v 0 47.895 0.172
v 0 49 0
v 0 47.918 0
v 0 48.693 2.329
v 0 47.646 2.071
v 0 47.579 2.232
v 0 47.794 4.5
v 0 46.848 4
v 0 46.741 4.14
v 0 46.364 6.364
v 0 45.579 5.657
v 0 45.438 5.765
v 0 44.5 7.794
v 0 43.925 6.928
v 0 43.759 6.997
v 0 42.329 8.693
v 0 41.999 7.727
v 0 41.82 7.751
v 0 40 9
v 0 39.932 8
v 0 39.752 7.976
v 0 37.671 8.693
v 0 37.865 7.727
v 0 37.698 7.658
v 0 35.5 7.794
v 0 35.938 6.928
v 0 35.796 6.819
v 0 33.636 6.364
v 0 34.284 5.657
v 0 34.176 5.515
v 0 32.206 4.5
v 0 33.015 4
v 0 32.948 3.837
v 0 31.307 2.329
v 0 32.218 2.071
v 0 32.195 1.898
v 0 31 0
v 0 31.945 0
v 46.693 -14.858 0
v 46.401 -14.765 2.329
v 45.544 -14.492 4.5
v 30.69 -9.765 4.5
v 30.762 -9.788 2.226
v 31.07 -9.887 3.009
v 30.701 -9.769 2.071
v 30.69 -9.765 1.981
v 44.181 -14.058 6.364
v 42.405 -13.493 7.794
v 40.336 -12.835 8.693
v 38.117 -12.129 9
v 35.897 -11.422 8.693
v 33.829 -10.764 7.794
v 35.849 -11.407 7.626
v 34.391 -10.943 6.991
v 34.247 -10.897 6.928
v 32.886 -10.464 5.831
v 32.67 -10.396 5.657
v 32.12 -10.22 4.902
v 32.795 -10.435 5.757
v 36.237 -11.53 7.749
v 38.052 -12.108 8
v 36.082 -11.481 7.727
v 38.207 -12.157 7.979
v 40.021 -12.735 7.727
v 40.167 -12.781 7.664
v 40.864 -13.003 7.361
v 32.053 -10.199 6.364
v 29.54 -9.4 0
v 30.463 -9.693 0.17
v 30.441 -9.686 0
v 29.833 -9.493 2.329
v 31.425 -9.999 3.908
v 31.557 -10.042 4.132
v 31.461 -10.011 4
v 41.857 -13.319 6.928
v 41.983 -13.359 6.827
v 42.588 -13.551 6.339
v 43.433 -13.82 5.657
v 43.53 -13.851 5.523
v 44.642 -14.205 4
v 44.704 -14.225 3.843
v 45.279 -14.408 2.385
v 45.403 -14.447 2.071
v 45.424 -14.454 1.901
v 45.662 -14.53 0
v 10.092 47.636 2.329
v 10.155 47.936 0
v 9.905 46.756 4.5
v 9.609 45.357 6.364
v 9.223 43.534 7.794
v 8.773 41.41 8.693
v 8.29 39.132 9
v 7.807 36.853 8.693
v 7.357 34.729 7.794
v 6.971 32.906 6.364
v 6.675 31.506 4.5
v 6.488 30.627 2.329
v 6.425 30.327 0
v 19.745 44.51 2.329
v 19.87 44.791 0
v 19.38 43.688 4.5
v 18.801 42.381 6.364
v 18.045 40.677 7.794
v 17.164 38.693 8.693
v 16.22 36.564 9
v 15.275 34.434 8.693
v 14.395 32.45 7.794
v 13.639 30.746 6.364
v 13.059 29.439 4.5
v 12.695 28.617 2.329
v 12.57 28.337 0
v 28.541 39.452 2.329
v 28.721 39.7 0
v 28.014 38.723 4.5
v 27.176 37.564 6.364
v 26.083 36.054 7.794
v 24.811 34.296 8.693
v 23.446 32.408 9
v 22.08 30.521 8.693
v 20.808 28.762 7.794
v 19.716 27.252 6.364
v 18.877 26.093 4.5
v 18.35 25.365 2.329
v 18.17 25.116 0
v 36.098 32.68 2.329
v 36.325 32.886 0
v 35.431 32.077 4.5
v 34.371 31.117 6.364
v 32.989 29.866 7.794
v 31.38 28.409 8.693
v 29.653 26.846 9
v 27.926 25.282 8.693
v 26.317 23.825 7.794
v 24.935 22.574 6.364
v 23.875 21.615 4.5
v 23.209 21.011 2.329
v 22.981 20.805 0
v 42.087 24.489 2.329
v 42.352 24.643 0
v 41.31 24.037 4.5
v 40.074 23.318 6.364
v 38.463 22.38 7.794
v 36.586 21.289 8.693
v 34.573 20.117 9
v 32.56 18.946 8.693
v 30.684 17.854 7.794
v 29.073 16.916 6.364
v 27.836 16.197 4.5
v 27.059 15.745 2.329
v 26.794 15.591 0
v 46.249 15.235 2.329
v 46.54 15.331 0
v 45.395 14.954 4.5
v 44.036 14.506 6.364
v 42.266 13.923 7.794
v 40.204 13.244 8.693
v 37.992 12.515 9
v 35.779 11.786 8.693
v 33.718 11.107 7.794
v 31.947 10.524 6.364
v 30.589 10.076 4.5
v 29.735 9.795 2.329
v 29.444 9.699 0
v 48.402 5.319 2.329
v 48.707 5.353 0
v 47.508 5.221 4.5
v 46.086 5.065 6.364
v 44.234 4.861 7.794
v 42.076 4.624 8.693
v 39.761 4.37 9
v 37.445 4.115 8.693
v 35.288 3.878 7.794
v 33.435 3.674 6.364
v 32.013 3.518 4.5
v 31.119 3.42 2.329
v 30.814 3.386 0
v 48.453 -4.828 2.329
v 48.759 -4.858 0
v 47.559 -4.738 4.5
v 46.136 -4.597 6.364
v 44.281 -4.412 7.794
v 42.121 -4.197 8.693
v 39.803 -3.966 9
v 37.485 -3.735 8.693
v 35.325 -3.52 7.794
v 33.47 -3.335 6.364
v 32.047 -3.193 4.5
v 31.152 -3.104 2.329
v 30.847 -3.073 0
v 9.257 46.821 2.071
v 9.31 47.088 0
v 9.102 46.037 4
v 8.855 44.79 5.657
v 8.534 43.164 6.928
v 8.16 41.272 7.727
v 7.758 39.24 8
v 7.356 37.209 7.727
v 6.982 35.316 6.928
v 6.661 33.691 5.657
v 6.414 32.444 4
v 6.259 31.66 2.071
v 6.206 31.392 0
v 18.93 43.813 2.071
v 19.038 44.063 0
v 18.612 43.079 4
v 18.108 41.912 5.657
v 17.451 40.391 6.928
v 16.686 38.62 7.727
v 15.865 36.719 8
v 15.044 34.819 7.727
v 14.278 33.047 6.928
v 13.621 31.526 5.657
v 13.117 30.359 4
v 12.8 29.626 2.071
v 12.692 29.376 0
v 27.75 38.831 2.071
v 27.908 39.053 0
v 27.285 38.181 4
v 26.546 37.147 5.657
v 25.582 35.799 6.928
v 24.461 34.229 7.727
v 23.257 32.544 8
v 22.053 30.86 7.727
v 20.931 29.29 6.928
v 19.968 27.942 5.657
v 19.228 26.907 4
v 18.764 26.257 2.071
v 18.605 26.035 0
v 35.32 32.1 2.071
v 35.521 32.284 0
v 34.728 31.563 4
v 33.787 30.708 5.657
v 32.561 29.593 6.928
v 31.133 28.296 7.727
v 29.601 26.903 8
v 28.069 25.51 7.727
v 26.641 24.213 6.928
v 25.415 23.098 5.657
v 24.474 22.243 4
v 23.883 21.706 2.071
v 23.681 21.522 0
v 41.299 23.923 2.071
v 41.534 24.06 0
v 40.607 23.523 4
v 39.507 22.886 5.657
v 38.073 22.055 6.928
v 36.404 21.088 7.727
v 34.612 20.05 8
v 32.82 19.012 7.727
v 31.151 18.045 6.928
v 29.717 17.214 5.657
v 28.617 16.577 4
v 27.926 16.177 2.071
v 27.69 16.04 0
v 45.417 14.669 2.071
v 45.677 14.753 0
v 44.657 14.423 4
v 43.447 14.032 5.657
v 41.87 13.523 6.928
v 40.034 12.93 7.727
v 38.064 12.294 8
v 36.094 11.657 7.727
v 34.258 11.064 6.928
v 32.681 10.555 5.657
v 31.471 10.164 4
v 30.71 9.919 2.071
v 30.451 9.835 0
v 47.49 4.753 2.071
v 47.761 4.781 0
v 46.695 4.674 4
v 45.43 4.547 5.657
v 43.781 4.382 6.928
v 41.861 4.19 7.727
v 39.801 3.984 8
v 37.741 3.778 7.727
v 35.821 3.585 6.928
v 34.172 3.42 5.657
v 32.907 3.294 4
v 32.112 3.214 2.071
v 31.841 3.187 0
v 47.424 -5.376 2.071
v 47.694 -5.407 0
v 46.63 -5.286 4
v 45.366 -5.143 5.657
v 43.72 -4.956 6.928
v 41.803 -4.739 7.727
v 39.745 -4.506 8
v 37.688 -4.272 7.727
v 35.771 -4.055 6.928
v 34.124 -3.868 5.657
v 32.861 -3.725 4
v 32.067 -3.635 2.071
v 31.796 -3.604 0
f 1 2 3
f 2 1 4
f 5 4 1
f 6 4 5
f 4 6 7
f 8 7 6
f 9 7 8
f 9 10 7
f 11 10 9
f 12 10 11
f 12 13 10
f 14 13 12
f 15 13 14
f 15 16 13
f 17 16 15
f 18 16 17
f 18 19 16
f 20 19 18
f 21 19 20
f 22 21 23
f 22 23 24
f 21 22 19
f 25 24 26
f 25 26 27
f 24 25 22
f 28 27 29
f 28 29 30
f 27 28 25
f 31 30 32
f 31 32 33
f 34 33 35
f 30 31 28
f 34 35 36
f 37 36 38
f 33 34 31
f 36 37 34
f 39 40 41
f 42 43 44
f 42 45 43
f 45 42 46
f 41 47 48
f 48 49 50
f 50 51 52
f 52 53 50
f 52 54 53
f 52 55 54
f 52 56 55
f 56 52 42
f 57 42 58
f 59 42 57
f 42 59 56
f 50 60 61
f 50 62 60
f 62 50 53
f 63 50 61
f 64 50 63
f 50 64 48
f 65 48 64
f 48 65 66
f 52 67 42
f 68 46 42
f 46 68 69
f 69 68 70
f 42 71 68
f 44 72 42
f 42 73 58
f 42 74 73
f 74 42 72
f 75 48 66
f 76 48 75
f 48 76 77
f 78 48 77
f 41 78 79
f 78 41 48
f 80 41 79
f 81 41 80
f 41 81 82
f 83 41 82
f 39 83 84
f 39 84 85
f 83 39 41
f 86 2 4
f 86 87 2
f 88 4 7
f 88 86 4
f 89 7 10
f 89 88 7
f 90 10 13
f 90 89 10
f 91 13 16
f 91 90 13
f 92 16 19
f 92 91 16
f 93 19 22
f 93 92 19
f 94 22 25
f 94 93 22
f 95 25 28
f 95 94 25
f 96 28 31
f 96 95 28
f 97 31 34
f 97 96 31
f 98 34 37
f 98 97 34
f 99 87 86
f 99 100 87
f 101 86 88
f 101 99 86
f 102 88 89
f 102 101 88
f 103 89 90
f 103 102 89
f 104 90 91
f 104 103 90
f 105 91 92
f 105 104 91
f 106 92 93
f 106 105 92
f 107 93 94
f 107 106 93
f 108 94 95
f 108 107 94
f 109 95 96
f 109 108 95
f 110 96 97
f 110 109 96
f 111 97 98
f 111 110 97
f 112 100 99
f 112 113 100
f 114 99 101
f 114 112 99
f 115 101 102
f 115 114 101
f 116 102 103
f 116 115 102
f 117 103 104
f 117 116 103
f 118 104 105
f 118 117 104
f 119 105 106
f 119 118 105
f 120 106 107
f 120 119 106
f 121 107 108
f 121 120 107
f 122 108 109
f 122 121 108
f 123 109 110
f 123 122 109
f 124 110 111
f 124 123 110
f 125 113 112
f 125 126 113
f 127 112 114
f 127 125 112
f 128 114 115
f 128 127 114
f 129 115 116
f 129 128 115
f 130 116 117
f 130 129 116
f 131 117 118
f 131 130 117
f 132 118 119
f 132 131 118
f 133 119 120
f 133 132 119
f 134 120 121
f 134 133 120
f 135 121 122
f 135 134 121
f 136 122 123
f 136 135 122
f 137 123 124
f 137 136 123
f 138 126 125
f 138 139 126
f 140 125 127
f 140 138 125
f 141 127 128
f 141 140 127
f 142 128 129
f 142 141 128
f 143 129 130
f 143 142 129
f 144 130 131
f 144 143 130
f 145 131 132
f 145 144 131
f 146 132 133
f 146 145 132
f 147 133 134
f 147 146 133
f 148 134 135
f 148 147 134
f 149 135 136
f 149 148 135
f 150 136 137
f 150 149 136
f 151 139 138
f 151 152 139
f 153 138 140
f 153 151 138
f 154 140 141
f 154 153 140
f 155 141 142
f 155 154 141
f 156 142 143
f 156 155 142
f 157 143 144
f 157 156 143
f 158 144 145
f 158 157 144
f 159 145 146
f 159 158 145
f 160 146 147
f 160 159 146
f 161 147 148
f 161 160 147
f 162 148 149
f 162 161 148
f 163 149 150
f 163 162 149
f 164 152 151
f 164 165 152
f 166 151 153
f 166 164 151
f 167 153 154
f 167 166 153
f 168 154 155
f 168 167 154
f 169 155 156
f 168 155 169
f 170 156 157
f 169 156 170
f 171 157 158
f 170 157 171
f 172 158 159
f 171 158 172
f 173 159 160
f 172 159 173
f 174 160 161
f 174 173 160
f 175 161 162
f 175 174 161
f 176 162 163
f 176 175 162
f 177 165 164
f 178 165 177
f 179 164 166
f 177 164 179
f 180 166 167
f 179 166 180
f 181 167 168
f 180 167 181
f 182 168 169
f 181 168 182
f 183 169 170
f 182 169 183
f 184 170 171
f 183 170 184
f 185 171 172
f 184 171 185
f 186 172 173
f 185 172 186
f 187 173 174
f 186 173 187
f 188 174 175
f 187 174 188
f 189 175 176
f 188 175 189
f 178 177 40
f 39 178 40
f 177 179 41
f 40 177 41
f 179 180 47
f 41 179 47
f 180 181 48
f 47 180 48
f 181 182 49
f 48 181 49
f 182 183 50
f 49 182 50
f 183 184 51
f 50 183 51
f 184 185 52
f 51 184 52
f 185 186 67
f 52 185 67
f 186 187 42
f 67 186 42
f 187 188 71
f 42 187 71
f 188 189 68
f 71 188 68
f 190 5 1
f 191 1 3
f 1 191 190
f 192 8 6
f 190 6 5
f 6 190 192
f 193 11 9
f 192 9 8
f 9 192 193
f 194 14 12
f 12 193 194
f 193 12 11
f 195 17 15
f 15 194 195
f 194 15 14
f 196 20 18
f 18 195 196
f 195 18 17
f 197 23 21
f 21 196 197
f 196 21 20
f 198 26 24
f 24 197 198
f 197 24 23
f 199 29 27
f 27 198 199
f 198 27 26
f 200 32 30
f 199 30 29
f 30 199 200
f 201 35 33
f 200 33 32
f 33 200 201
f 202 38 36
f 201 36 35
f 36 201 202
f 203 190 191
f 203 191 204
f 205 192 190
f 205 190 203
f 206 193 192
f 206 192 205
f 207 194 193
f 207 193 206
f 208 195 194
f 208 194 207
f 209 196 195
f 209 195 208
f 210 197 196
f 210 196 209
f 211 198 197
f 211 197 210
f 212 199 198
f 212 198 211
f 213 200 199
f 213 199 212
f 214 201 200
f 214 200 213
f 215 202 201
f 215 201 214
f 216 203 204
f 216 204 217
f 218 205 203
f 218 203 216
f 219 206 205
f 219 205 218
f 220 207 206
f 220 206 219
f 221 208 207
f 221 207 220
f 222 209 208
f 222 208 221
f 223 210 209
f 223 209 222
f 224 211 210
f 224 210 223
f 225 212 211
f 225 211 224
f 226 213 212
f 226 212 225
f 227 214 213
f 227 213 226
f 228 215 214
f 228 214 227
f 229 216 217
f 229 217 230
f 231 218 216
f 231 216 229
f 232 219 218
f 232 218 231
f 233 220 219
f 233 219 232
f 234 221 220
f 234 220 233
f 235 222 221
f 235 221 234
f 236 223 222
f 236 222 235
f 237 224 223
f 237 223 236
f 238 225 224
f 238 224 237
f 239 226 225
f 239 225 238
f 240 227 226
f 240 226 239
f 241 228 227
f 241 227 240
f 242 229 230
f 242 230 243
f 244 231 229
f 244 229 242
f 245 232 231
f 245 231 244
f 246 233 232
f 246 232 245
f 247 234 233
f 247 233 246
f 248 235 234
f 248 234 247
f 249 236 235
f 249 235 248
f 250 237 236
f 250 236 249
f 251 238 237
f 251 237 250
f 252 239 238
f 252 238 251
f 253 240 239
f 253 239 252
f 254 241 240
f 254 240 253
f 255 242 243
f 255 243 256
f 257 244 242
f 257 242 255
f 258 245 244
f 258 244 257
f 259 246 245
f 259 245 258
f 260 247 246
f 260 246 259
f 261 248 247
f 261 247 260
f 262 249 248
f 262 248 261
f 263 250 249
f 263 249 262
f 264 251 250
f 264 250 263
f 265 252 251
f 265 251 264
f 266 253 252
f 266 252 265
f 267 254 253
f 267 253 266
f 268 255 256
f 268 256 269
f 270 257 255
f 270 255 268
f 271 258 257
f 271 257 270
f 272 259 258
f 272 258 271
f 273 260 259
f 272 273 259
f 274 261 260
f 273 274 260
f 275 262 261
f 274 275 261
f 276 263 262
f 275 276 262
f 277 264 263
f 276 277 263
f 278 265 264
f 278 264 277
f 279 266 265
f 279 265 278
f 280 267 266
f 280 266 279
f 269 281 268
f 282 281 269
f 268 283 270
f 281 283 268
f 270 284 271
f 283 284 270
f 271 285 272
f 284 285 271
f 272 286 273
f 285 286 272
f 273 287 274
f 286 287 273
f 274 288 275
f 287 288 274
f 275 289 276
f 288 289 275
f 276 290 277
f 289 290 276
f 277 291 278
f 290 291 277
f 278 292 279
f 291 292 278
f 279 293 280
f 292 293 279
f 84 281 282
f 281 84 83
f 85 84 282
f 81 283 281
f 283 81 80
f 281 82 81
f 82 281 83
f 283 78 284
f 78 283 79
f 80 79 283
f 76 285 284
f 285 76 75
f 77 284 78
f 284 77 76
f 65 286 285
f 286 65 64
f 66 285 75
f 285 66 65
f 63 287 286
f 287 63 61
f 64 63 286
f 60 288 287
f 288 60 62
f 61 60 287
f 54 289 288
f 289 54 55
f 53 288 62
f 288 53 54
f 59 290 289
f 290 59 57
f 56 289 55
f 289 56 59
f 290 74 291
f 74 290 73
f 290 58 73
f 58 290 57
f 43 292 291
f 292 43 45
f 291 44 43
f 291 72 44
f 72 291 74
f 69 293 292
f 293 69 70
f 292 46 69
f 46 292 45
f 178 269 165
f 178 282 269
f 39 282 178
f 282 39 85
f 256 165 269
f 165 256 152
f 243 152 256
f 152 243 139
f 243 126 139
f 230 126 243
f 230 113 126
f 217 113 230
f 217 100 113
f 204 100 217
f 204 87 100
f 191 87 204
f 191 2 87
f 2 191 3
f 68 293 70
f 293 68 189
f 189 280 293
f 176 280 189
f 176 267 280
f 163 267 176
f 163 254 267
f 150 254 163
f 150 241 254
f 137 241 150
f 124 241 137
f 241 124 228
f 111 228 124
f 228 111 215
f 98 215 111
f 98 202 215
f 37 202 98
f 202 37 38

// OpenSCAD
// file: ../build_environments.scad
// build_environments.scad: modules to build level sections
//

module pool(diameter=10.0, wall_height=2.0, step_width=3.0, connections=[])
{
    difference() {
        union() {
        difference() {
            cylinder(h=0.5,r1=diameter+step_width,r2=diameter+step_width,$fn=48);
            translate([0,0,-0.1])
                cylinder(h=0.7,r1=diameter,r2=diameter,$fn=48);
        }
        difference() {
            cylinder(h=wall_height,r1=diameter+step_width+1.0,r2=diameter+step_width+1.0,$fn=48);
            translate([0,0,-0.1])
                cylinder(h=wall_height+0.2,r1=diameter+step_width,r2=diameter+step_width,$fn=48);
        }
        }
    
        for (c = connections)
        {
            rotate([0,90,0]) {
                angle = atan2(c[1],c[0]);
                rotate([-angle,0,0]) {
                    cylinder(h=diameter+5.0,r1=c[2],r2=c[2],$fn=48);
                }
            }
        }
    }
}

module straight(length=10.0, width=2.0, dy1=0.0, dy2=0.0, dz=0.0)
{
    dims = [0, 0, 0, 0, 0, (dz/length)];
    matrix = [
        [ 1, dims[0], dims[1], 0 ],
        [ dims[2], 1, dims[4], 0 ],
        [ dims[5], dims[3], 1, 0 ],
        [ 0, 0, 0, 1 ]
    ];
    multmatrix(matrix)
    difference() {
        translate([dy1,0,0])
        union() {
            rotate([0,90,0]) {
                difference() {
                    cylinder(h=(length-dy1-dy2),r1=width+1.0,r2=width+1.0,$fn=24);
                    translate([0,0,-0.1])
                        cylinder(h=(length-dy1-dy2+0.2),r1=width,r2=width,$fn=24);
                }
                difference() {
                    cylinder(h=1.0,r1=width+2.0,r2=width+2.0,$fn=24);
                    translate([0,0,-0.1])
                        cylinder(h=1.2,r1=width,r2=width,$fn=24);
                }
                translate([0,0,(length-dy1-dy2)-1.0]) {
                    difference() {
                        cylinder(h=1.0,r1=width+2.0,r2=width+2.0,$fn=24);
                        translate([0,0,-0.1])
                            cylinder(h=1.2,r1=width,r2=width,$fn=24);
                    }
                }
            }
        }
        translate([0,0,-(2*width+4.0)/2])
            cube([3*length,3*length,2*width+4.0],center=true);
    }
}

module curve(p0=[0,0], center=[0,0], dir=1, angle=0.0, width=2.0)
{
    radius = sqrt((p0[0]-center[0])*(p0[0]-center[0]) + (p0[1]-center[1])*(p0[1]-center[1]));
    if (dir == 0) {
        difference() {
            rotate([0,0,-90])
            difference() {
                rotate_extrude(angle = angle, convexity = 10, $fn=32)
                    translate([radius, 0, 0])
                        circle(r = width+1.0,$fn=24);
                rotate([0,0,-1.0])
                    rotate_extrude(angle = angle+2.0, convexity = 10, $fn=32)
                        translate([radius, 0, 0])
                            circle(r = width,$fn=24);
            }
            translate([0,0,-(2*width+4.0)/2])
                cube([5*radius,5*radius,2*width+4.0],center=true);
        }
    }
    else {
        difference() {
            rotate([0,0,90])
            difference() {
                rotate_extrude(angle = -angle, convexity = 10, $fn=32)
                    translate([radius, 0, 0])
                        circle(r = width+1.0,$fn=24);
                rotate([0,0,1.0])
                    rotate_extrude(angle = -angle-2.0, convexity = 10, $fn=32)
                        translate([radius, 0, 0])
                            circle(r = width,$fn=24);
            }
            translate([0,0,-(2*width+4.0)/2])
                cube([5*radius,5*radius,2*width+4.0],center=true);
        }
    }

}

// test pool
//pool(diameter=12.0000, wall_height=3.0000, step_width=3.0000, connections=[[0.0000,-26.0000,2.0000], [23.6074,0.0000,2.0000]]);

// test straight, slope
//straight(length=26.0000, width=2.0000, dy1=11.8322, dy2=6.7082, dz=0.0000);
//straight(length=29.1549, width=12.0000, dy1=0.0000, dy2=0.0000, dz=-15.0000);

// test curve
//curve(p0=[23.6074, 0.0000], center=[23.6074, 5.0000], dir=0, angle=60.1011, width=2.0000);
//curve(p0=[33.6426, 12.4219], center=[37.9771, 9.9295], dir=1, angle=120.4627, width=2.0000);
// main file
use <../build_environments.scad>;
curve(p0=[87.9532, 359.9761], center=[115.7608, 331.2231], dir=1, angle=107.6510, width=8.0000);
